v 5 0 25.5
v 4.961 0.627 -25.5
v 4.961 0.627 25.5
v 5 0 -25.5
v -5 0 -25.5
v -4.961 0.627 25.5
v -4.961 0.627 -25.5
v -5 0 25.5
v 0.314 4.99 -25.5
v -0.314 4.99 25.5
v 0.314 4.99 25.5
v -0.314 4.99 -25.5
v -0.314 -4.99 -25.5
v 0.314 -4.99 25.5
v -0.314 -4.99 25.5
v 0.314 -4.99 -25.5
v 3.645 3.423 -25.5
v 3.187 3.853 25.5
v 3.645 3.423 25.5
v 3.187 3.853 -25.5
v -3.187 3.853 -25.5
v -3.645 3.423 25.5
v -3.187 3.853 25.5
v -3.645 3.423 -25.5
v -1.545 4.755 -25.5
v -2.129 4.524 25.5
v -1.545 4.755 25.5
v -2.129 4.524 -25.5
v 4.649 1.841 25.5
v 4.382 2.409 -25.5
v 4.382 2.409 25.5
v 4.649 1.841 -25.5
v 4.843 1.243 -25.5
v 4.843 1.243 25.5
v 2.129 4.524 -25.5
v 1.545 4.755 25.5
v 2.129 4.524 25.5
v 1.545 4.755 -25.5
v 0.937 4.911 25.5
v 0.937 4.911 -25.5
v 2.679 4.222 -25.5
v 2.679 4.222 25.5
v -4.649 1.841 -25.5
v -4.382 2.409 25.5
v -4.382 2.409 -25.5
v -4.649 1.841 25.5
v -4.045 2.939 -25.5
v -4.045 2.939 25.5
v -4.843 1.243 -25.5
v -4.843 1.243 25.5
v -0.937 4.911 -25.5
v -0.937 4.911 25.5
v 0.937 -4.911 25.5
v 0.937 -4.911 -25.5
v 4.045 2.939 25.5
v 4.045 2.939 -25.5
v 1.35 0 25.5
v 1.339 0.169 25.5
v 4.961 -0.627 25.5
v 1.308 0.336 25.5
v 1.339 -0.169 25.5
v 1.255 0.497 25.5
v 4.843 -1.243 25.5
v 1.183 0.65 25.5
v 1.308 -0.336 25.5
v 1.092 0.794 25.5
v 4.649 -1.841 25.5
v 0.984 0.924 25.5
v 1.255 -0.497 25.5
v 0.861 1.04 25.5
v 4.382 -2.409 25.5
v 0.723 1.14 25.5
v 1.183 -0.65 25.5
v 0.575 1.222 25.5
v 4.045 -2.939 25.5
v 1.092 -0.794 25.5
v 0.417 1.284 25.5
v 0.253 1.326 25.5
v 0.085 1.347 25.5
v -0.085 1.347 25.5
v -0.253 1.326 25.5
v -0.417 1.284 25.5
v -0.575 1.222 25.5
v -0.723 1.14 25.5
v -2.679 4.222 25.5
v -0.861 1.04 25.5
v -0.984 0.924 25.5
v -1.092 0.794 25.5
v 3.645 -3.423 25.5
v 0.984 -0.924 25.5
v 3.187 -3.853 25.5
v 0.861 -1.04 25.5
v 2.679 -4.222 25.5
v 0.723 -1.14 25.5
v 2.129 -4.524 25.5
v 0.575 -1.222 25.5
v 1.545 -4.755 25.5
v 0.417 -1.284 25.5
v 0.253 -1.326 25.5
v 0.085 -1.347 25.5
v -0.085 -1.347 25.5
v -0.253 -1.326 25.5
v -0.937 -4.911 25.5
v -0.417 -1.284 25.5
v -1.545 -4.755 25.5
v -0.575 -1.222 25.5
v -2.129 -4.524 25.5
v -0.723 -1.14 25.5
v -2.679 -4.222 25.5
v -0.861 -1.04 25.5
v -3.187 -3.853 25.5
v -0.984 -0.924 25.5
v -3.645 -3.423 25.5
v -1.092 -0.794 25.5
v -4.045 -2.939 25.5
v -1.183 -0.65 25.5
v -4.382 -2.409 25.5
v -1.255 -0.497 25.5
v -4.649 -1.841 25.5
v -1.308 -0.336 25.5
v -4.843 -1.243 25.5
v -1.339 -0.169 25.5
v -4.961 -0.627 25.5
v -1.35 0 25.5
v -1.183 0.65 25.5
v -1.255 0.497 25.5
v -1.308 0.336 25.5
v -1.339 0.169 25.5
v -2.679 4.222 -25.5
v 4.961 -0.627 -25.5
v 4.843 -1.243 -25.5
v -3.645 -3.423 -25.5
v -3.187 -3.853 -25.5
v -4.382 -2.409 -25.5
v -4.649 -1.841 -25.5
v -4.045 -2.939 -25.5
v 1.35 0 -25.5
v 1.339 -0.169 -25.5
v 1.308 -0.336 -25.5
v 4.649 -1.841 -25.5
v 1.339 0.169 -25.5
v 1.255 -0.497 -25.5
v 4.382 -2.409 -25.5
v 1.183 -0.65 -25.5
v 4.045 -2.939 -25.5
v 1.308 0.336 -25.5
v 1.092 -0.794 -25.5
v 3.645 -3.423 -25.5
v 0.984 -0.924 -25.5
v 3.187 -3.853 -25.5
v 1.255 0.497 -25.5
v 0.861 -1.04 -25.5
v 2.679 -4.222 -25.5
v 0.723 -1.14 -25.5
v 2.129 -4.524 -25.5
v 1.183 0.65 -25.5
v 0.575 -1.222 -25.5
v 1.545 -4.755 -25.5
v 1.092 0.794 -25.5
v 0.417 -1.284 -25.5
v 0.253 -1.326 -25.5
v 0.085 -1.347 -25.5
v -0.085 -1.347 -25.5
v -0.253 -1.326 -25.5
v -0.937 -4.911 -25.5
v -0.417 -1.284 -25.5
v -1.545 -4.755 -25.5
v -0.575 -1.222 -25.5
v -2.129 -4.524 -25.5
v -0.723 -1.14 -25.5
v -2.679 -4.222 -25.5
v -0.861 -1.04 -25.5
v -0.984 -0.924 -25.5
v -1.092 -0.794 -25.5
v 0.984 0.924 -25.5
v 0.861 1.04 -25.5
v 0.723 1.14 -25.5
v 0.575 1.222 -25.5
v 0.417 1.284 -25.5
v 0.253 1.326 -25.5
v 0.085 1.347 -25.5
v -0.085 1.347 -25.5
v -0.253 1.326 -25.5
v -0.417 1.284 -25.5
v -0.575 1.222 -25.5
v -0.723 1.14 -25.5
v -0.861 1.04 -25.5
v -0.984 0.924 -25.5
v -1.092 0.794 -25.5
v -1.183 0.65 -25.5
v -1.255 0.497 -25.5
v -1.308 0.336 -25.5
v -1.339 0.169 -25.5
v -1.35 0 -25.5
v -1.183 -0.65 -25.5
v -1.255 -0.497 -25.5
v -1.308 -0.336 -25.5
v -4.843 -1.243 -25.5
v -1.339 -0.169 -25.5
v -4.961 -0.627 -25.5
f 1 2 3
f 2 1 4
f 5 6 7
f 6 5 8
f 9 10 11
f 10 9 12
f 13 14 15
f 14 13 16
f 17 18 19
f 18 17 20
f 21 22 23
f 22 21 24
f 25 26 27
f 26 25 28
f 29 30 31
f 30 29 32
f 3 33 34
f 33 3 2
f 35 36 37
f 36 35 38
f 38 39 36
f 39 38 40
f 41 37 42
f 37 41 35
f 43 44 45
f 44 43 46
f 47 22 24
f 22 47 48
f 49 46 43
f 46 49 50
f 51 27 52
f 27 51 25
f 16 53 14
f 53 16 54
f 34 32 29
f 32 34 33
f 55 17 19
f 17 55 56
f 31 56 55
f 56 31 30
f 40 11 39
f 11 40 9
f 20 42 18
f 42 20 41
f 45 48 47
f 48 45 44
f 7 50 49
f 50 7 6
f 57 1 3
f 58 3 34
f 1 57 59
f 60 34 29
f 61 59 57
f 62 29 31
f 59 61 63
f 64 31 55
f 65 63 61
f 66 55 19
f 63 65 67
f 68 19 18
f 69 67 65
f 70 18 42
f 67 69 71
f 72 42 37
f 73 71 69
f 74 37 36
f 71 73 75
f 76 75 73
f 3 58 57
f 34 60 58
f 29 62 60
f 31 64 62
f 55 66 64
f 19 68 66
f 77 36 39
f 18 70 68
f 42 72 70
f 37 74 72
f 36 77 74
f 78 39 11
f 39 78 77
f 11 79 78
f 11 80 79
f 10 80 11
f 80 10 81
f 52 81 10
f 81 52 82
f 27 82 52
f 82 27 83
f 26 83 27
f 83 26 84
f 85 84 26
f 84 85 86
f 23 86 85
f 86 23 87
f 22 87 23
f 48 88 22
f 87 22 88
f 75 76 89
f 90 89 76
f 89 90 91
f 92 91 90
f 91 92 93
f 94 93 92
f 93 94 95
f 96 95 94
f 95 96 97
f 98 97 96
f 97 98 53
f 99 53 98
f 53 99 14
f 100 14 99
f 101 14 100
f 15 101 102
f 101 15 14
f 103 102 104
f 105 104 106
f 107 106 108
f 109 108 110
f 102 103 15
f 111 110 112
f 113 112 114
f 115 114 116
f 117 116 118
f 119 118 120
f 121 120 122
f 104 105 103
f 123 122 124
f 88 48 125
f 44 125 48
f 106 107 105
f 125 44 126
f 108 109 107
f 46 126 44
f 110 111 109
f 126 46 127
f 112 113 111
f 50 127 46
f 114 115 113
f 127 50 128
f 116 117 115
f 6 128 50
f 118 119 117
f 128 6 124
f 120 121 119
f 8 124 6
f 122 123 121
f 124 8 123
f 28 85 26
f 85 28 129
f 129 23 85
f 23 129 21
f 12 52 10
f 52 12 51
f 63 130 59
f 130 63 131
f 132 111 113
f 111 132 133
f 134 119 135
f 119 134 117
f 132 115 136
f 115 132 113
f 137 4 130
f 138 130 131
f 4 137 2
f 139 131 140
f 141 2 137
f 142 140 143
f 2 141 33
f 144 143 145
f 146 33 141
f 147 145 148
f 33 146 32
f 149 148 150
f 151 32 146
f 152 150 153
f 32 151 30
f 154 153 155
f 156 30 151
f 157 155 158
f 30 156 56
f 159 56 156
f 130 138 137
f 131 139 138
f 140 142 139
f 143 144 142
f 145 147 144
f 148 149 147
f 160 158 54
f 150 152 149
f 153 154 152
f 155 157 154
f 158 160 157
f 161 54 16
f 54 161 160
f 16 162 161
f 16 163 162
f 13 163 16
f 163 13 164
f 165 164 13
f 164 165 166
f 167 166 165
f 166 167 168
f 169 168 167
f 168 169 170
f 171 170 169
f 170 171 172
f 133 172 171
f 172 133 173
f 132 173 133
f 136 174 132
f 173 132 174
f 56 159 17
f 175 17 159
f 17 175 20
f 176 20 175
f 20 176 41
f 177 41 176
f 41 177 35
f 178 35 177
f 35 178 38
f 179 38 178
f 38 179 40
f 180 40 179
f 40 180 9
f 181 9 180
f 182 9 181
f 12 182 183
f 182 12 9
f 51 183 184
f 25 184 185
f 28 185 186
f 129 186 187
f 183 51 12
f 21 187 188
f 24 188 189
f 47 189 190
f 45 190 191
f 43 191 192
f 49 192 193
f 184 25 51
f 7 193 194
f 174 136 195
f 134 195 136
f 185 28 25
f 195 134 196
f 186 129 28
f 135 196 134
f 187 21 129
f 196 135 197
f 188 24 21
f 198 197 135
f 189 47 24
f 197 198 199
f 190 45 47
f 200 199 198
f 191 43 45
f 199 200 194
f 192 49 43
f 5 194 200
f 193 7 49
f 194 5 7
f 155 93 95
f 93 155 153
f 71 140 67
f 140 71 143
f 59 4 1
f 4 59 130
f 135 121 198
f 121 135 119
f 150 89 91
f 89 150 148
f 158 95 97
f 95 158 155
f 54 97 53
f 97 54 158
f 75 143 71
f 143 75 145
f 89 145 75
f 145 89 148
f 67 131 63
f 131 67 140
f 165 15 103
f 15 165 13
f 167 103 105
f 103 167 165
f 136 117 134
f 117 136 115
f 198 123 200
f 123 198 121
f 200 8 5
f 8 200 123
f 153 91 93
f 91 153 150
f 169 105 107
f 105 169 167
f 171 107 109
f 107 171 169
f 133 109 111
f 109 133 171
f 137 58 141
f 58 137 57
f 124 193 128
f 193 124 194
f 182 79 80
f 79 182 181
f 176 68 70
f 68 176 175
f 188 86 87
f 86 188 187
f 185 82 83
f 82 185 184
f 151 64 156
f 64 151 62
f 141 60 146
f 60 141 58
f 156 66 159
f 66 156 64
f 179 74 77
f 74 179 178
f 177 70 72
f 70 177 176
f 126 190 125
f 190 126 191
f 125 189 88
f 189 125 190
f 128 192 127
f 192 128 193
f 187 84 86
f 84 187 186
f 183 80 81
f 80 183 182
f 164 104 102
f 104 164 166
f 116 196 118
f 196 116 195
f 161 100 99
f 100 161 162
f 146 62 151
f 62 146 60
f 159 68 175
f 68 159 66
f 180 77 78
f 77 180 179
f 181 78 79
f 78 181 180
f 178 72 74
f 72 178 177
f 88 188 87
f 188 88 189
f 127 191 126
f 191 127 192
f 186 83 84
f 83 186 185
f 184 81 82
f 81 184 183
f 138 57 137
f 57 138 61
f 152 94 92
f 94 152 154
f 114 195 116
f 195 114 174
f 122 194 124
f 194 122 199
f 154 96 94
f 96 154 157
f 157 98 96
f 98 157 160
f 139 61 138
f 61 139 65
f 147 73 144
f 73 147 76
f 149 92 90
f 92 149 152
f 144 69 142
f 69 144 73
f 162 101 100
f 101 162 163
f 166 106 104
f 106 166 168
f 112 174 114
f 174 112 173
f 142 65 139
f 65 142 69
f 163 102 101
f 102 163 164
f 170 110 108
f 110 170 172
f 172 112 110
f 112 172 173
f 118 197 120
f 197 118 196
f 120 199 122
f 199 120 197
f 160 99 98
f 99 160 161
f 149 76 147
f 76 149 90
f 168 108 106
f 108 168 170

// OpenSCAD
$fn = 50;


difference() {
	union() {
		translate(v = [0, 0, -25.5000000000]) {
			cylinder(h = 51, r = 5.0000000000);
		}
	}
	union() {
		translate(v = [0, 0, -100.0000000000]) {
			cylinder(h = 200, r = 1.3500000000);
		}
	}
}
